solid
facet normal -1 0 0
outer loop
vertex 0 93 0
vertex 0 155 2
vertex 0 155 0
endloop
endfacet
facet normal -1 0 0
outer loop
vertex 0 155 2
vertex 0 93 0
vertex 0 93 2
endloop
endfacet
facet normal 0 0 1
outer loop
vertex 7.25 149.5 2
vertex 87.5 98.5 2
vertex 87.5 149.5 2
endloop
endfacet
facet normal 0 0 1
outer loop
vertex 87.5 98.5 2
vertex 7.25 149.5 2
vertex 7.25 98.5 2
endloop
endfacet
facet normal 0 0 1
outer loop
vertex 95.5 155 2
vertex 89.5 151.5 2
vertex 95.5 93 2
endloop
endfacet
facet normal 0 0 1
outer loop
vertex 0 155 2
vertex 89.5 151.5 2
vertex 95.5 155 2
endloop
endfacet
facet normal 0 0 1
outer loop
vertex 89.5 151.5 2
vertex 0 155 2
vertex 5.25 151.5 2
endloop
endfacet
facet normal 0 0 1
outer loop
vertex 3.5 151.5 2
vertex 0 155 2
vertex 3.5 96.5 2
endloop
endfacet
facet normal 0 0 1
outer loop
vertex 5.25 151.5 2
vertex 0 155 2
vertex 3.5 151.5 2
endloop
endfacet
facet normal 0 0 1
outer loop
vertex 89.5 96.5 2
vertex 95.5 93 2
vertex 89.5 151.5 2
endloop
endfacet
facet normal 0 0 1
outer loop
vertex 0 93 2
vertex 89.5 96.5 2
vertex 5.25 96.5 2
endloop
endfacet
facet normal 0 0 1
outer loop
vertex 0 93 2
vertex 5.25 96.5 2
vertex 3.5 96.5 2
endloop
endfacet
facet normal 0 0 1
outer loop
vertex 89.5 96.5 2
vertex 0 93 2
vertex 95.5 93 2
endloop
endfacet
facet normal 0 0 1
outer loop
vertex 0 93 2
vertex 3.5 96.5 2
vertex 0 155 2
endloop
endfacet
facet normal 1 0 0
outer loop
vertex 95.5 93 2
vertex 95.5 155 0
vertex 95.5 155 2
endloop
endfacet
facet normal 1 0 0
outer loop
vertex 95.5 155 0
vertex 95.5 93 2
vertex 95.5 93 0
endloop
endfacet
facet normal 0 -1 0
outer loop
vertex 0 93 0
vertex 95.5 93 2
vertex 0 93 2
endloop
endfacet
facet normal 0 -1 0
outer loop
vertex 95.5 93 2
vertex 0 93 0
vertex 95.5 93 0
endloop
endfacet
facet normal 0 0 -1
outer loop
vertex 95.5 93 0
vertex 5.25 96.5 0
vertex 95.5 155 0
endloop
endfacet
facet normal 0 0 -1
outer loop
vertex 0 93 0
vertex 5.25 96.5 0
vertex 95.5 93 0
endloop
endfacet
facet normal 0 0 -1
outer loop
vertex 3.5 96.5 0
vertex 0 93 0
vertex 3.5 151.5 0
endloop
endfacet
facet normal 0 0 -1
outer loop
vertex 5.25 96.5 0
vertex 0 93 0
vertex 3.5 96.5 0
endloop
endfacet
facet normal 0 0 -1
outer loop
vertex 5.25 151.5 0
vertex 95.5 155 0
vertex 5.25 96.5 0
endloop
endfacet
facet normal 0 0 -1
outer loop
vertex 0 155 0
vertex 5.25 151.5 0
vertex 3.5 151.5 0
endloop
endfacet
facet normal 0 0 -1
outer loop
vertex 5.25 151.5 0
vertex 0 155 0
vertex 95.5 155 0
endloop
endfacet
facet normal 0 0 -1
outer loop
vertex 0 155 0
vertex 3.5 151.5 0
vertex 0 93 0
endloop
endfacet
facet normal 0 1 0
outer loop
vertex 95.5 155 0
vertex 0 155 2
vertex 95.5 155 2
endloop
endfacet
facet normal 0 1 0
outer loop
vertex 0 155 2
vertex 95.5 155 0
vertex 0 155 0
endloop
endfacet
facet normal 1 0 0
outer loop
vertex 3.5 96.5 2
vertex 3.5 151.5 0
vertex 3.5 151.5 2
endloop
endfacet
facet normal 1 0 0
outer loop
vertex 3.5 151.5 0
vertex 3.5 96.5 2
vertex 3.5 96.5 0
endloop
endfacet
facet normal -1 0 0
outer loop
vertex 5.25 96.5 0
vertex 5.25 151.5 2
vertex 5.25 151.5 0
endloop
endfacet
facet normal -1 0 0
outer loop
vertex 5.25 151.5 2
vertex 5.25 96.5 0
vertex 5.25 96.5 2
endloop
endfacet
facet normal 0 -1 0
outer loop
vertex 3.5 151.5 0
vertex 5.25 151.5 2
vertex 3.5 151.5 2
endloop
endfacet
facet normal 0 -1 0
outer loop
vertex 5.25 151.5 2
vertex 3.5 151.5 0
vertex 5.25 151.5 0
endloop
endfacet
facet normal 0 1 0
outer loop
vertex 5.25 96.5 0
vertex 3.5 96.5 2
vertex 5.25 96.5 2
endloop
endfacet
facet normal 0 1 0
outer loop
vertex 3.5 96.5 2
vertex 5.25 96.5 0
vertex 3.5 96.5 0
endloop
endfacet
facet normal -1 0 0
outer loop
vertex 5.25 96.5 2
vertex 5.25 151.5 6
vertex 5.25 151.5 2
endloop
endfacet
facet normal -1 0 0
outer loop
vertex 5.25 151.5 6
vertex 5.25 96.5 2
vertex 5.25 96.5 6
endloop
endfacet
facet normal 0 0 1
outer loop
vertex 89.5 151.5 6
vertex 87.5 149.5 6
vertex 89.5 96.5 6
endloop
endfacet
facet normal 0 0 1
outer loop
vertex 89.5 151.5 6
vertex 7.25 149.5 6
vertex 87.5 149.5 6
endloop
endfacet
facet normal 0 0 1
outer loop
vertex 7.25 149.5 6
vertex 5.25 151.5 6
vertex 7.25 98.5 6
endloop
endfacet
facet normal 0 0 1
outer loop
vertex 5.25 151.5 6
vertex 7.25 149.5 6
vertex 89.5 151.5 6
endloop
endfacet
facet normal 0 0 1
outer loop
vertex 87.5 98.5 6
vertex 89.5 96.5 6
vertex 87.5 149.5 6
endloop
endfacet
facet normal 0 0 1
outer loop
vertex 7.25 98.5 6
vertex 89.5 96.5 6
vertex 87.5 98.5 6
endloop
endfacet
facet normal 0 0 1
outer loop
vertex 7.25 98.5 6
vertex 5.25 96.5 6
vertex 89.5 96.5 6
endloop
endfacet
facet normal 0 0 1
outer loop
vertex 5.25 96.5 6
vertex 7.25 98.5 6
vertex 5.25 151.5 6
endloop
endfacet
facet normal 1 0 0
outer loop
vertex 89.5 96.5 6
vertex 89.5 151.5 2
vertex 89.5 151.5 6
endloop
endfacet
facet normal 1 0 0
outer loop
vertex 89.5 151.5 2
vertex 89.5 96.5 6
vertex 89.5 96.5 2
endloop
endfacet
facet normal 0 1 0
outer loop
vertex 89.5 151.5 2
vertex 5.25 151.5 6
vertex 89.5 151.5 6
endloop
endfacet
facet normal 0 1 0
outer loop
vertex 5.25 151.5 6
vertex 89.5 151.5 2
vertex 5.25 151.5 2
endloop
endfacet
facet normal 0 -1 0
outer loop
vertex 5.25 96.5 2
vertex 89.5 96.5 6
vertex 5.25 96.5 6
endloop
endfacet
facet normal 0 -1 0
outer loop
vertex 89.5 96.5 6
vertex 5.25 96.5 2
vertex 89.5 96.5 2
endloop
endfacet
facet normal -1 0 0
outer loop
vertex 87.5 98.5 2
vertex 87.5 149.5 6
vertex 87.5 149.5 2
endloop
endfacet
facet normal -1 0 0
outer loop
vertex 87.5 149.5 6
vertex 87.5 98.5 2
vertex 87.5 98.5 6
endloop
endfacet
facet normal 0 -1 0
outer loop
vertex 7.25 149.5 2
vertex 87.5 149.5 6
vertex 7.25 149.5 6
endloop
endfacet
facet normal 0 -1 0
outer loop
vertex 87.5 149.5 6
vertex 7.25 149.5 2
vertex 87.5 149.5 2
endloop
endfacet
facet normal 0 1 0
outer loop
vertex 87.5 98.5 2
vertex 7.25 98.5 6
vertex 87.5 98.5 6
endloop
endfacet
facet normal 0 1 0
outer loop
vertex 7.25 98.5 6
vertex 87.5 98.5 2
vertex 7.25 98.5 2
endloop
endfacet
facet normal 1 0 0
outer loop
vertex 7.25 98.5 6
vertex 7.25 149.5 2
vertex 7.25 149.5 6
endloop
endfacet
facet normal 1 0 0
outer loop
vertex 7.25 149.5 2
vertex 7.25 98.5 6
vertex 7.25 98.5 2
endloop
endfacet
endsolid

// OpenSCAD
$fn=200;

wallAThickness = 3.5;
wallBThickness = 3.5;
baseWidth = 55;
baseCameraSideThickness = 6;
baseCardSideThickness = 3.5;
floorThickness = 3.5;
baseLength = 86;

modifierPercent = 0.20;
length = baseLength + baseCameraSideThickness + baseCardSideThickness; // x
width = baseWidth + wallAThickness + wallBThickness; // y
height = length; // z

lidHeight = 4;

heightCard = 1.75;
lengthCard = 1.75;
widthCard = 1.75;

cornerRadius = 10;

piBoardHeight = 1.5;
piCameraWidth = 25;
piCameraLength = 25.25;
piCornerRadius = 2;
piBottomHoleToCenter = 14.5;
piTopHoleToCenter = 2.0;
piHoleSideToCenter = piTopHoleToCenter;
holesSize = 2;

// Sensor is square.
sensorSize = 9;
sensorHeight = 4;

sensorCenterPositionA = 9.46;
sensorCenterPositionB = 12.5;
connectorCenterA = 12;
connectorCenterB = 5;

connectorWidth = 7;
connectorLength = 12;
connectorHeight = 3;

ribbonCableLength = 12;
ribbonCableWidth = 3;

//piCamera();
//difference(){
 //peiceOne();
 //piCameraInPlace();
//}
peiceTwo();

module cardHolderSlot(){
    modHeight = height - (height * modifierPercent);
    cube(size=[widthCard, lengthCard, modHeight-lidHeight-floorThickness]);
}
module piCameraInPlace(){
    translate([length+0.5,(width/2)+(piCameraWidth/2),(height/3)+piCameraLength]){
        rotate(a=[0,90,180]) {
            piCamera();
        }
    } 
}

module piCamera(){
    translate([2,2,0]){
        roundedBox(piCameraLength, piCameraWidth,piBoardHeight, piCornerRadius);
        mountingHole();
        translate([0,21,0]) {
            mountingHole();
        }
        translate([piBottomHoleToCenter-holesSize,0,0]) {
            mountingHole();
        }    
        translate([piBottomHoleToCenter-holesSize,21,0]) {
            mountingHole();
        }
    }
    
    translate([sensorCenterPositionA,sensorCenterPositionB-sensorSize/2, piBoardHeight]){
        color("red") squareBox(sensorSize, sensorSize, piBoardHeight+connectorHeight);
        color("orange") translate([sensorSize/2,sensorSize/2, sensorHeight]) {
            cylinder(h = piBoardHeight, r1 = (sensorSize-1)/2, r2 = (sensorSize-1)/2, center = false);
        }        
    }
    translate([connectorCenterB/2, connectorCenterA/2, piBoardHeight]){
        color("grey") squareBox(connectorLength, connectorWidth, connectorHeight);
    }
}


module mountingHole(){
    cylinder(h = 4.02, r1 = holesSize/2 - 0.05, r2 = holesSize/2 - 0.05, center = false);
}

module peiceOne(){
    difference() {
        modHeight = height-(height * modifierPercent);
        squareBox(width, length, modHeight);
        translate([wallAThickness, wallBThickness, floorThickness]){
            difference() {
                squareBox(baseWidth, baseLength, modHeight);
                slots();                                            
            }
        }
    }            
}

module slots(){
    translate([heightCard,0,0]){
        cardHolderSlot();
     }
    translate([heightCard,baseWidth-wallBThickness+widthCard,0]){
        cardHolderSlot();
     }
}

module peiceTwo(){
    translate([0, width*2.5, 0]){
        mirror([0,1,0]) {
            difference() {
                squareBox(width, length, 2);
                translate([wallAThickness,baseCardSideThickness,-1]){
                    squareBox(baseWidth, widthCard,lidHeight+2);
                }
            }
            color("purple") difference() {  
                translate([baseCardSideThickness+lengthCard,wallAThickness,2]){
                    squareBox(baseWidth, baseLength-lengthCard, lidHeight);}
                translate([baseCardSideThickness+2-lengthCard,wallAThickness+2,2]) {
                    squareBox(baseWidth-4, baseLength+lengthCard-4, lidHeight+2);
                }
            }
            translate([wallAThickness+widthCard,baseCardSideThickness+2,2]){
             color("purple") squareBox(baseWidth-4, 2,lidHeight);
            }
        }
    }
}

module squareBox(length, width, height){
    cube(size=[width, length, height]);
}

module roundedBox(length, width, height, radius)
{
    dRadius = 2*radius;
    
    //base rounded shape
    minkowski() {
        cube(size=[width-dRadius,length-dRadius, height]);
        cylinder(r=radius, h=0.01);
    } 
}
